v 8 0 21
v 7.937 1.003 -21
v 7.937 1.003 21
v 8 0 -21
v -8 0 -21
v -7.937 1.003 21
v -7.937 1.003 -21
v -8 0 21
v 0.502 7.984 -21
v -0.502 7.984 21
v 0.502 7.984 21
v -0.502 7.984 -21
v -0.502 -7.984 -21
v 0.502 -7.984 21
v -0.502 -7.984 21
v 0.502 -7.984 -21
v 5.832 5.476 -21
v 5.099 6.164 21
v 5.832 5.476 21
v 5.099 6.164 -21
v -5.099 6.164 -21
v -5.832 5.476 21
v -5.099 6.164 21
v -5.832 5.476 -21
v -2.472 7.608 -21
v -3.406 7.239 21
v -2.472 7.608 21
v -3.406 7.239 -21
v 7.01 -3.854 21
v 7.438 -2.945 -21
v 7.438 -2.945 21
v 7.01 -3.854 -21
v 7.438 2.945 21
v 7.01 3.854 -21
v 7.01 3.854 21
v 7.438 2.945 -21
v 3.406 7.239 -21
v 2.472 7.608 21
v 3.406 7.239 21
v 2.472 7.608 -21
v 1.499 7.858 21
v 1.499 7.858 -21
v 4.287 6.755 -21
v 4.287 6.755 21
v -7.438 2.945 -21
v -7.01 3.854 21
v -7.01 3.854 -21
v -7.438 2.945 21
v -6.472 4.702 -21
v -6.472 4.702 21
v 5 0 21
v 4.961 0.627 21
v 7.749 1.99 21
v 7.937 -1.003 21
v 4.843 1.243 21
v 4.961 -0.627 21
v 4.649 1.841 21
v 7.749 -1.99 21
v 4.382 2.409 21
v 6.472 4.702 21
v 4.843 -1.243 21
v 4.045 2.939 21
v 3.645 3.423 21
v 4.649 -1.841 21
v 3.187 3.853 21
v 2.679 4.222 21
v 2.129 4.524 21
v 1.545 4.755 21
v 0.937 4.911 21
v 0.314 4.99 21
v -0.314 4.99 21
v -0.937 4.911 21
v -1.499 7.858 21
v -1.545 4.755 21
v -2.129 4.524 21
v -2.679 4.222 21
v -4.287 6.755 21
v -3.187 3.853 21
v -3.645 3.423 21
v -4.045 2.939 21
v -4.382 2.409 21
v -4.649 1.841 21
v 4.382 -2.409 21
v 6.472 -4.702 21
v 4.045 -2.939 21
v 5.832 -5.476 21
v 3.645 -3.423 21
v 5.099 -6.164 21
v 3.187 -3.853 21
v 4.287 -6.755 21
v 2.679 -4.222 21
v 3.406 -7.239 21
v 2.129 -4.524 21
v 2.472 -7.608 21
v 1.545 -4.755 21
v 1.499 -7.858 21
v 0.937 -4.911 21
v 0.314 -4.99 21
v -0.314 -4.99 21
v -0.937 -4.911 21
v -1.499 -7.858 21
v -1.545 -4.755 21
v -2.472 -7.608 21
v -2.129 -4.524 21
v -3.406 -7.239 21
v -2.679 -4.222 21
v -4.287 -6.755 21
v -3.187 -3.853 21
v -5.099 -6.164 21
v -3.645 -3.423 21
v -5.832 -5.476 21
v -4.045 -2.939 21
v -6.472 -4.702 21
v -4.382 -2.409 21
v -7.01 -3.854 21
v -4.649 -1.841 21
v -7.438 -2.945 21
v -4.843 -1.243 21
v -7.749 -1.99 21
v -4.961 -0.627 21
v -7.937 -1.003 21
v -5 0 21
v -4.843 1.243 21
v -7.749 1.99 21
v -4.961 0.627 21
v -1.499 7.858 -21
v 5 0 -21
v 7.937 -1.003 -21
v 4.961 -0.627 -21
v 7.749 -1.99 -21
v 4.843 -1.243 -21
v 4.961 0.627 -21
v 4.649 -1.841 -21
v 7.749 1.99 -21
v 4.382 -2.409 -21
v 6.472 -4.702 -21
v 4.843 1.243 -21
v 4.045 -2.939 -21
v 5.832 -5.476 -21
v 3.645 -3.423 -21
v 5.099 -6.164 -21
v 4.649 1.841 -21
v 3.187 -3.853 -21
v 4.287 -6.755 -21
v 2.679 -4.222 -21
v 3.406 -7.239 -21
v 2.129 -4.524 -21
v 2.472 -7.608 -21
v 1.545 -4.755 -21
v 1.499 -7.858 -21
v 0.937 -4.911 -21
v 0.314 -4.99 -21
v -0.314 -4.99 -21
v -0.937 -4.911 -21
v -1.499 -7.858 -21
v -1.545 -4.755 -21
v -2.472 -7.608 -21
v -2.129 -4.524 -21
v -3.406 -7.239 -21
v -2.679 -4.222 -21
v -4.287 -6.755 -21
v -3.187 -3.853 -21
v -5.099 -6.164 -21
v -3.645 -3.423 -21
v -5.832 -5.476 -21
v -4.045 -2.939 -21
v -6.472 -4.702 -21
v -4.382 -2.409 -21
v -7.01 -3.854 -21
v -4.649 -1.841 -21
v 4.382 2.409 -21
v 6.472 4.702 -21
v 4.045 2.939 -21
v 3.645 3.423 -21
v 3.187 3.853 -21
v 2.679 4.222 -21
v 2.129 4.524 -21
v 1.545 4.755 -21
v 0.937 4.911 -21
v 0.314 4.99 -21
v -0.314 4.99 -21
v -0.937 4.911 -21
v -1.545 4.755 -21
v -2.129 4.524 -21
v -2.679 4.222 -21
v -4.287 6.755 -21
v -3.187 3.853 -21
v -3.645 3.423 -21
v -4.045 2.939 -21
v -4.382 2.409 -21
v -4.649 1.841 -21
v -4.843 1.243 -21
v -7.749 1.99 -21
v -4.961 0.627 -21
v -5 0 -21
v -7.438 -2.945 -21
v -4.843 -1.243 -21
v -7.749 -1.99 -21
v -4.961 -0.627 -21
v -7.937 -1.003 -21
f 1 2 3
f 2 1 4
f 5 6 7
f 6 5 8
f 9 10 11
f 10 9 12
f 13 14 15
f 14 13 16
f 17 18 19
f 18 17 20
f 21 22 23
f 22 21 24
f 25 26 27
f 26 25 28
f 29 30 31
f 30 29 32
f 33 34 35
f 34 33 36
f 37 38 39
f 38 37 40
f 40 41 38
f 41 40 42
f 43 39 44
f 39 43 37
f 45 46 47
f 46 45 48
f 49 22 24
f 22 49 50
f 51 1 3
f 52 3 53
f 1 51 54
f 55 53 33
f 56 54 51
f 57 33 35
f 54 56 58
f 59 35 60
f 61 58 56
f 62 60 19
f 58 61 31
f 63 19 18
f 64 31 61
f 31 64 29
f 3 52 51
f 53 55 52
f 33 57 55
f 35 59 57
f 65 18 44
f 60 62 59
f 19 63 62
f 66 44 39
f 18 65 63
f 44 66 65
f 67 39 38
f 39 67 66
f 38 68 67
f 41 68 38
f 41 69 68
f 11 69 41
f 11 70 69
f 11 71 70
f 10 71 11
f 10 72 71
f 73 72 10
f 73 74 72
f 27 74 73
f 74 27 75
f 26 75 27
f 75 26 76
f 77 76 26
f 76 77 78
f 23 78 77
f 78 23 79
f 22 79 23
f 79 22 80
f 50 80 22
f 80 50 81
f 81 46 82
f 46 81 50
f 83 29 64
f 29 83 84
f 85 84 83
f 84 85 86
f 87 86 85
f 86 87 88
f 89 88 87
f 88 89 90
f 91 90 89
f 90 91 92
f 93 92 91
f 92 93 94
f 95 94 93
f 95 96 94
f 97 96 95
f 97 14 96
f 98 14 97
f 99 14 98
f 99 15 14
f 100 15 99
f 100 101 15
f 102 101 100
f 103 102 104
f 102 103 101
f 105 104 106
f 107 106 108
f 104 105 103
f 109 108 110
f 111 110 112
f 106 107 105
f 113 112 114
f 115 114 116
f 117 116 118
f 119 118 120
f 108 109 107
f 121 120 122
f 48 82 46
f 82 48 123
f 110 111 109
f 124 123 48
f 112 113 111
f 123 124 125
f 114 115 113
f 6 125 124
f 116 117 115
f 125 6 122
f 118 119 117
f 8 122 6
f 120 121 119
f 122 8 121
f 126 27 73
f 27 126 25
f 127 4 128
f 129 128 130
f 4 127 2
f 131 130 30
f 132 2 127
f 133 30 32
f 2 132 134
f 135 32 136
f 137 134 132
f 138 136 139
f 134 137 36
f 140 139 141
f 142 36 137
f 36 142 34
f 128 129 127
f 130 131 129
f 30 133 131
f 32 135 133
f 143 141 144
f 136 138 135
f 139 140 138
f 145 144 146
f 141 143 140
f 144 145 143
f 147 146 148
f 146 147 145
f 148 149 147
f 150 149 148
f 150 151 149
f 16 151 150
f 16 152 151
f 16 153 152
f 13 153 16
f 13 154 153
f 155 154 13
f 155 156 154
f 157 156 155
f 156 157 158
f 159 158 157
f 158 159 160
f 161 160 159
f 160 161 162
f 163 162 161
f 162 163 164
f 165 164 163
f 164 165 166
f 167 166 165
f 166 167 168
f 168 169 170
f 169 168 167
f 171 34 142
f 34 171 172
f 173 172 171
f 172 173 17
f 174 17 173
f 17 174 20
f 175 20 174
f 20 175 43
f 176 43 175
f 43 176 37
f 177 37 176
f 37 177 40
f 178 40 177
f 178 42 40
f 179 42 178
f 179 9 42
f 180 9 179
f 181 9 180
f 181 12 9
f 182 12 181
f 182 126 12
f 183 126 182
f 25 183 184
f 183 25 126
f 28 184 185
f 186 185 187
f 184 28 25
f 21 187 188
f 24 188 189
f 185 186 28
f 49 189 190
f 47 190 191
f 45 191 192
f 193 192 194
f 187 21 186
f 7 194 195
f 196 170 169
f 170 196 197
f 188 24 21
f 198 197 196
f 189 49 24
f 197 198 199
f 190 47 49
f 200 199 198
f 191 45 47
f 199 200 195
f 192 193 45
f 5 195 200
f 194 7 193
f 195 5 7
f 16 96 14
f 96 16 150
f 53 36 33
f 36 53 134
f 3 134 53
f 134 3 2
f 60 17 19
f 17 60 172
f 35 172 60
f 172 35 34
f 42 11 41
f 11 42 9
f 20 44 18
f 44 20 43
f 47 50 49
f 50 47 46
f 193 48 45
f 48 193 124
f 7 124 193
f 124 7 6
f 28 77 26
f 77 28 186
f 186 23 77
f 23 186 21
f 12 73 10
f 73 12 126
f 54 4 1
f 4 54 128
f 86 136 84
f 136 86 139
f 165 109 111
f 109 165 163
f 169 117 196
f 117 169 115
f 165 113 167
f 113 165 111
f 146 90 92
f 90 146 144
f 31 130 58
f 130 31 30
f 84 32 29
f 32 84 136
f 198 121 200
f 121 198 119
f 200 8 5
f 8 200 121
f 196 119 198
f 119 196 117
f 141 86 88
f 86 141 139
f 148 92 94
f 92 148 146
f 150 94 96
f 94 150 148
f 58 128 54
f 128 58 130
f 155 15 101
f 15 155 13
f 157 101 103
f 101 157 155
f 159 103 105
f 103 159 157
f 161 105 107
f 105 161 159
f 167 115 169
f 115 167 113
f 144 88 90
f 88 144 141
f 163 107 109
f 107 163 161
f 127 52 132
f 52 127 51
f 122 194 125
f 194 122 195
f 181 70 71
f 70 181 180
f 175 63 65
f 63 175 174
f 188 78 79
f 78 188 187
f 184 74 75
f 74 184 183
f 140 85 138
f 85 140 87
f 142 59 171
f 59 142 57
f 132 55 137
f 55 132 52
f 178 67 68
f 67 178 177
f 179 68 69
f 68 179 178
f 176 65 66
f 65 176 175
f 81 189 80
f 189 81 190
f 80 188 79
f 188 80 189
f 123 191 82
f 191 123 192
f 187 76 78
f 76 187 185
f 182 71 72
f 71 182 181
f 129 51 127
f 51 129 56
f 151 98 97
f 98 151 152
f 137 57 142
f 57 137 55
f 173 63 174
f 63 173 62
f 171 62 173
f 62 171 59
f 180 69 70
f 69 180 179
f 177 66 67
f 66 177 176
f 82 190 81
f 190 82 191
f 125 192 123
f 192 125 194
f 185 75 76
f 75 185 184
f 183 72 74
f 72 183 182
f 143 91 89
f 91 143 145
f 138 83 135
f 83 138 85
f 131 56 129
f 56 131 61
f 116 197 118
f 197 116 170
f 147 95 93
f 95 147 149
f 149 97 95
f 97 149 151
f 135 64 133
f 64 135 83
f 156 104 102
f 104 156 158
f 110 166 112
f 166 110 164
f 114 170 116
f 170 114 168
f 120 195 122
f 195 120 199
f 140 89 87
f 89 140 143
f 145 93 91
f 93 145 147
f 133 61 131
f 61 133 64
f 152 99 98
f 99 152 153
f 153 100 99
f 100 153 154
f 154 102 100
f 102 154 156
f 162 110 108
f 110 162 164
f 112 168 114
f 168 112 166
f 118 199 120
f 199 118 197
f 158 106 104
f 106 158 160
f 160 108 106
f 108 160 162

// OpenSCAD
$fn = 50;


difference() {
	union() {
		translate(v = [0, 0, -21.0000000000]) {
			cylinder(h = 42, r = 8.0000000000);
		}
	}
	union() {
		translate(v = [0, 0, -100.0000000000]) {
			cylinder(h = 200, r = 5.0000000000);
		}
	}
}
